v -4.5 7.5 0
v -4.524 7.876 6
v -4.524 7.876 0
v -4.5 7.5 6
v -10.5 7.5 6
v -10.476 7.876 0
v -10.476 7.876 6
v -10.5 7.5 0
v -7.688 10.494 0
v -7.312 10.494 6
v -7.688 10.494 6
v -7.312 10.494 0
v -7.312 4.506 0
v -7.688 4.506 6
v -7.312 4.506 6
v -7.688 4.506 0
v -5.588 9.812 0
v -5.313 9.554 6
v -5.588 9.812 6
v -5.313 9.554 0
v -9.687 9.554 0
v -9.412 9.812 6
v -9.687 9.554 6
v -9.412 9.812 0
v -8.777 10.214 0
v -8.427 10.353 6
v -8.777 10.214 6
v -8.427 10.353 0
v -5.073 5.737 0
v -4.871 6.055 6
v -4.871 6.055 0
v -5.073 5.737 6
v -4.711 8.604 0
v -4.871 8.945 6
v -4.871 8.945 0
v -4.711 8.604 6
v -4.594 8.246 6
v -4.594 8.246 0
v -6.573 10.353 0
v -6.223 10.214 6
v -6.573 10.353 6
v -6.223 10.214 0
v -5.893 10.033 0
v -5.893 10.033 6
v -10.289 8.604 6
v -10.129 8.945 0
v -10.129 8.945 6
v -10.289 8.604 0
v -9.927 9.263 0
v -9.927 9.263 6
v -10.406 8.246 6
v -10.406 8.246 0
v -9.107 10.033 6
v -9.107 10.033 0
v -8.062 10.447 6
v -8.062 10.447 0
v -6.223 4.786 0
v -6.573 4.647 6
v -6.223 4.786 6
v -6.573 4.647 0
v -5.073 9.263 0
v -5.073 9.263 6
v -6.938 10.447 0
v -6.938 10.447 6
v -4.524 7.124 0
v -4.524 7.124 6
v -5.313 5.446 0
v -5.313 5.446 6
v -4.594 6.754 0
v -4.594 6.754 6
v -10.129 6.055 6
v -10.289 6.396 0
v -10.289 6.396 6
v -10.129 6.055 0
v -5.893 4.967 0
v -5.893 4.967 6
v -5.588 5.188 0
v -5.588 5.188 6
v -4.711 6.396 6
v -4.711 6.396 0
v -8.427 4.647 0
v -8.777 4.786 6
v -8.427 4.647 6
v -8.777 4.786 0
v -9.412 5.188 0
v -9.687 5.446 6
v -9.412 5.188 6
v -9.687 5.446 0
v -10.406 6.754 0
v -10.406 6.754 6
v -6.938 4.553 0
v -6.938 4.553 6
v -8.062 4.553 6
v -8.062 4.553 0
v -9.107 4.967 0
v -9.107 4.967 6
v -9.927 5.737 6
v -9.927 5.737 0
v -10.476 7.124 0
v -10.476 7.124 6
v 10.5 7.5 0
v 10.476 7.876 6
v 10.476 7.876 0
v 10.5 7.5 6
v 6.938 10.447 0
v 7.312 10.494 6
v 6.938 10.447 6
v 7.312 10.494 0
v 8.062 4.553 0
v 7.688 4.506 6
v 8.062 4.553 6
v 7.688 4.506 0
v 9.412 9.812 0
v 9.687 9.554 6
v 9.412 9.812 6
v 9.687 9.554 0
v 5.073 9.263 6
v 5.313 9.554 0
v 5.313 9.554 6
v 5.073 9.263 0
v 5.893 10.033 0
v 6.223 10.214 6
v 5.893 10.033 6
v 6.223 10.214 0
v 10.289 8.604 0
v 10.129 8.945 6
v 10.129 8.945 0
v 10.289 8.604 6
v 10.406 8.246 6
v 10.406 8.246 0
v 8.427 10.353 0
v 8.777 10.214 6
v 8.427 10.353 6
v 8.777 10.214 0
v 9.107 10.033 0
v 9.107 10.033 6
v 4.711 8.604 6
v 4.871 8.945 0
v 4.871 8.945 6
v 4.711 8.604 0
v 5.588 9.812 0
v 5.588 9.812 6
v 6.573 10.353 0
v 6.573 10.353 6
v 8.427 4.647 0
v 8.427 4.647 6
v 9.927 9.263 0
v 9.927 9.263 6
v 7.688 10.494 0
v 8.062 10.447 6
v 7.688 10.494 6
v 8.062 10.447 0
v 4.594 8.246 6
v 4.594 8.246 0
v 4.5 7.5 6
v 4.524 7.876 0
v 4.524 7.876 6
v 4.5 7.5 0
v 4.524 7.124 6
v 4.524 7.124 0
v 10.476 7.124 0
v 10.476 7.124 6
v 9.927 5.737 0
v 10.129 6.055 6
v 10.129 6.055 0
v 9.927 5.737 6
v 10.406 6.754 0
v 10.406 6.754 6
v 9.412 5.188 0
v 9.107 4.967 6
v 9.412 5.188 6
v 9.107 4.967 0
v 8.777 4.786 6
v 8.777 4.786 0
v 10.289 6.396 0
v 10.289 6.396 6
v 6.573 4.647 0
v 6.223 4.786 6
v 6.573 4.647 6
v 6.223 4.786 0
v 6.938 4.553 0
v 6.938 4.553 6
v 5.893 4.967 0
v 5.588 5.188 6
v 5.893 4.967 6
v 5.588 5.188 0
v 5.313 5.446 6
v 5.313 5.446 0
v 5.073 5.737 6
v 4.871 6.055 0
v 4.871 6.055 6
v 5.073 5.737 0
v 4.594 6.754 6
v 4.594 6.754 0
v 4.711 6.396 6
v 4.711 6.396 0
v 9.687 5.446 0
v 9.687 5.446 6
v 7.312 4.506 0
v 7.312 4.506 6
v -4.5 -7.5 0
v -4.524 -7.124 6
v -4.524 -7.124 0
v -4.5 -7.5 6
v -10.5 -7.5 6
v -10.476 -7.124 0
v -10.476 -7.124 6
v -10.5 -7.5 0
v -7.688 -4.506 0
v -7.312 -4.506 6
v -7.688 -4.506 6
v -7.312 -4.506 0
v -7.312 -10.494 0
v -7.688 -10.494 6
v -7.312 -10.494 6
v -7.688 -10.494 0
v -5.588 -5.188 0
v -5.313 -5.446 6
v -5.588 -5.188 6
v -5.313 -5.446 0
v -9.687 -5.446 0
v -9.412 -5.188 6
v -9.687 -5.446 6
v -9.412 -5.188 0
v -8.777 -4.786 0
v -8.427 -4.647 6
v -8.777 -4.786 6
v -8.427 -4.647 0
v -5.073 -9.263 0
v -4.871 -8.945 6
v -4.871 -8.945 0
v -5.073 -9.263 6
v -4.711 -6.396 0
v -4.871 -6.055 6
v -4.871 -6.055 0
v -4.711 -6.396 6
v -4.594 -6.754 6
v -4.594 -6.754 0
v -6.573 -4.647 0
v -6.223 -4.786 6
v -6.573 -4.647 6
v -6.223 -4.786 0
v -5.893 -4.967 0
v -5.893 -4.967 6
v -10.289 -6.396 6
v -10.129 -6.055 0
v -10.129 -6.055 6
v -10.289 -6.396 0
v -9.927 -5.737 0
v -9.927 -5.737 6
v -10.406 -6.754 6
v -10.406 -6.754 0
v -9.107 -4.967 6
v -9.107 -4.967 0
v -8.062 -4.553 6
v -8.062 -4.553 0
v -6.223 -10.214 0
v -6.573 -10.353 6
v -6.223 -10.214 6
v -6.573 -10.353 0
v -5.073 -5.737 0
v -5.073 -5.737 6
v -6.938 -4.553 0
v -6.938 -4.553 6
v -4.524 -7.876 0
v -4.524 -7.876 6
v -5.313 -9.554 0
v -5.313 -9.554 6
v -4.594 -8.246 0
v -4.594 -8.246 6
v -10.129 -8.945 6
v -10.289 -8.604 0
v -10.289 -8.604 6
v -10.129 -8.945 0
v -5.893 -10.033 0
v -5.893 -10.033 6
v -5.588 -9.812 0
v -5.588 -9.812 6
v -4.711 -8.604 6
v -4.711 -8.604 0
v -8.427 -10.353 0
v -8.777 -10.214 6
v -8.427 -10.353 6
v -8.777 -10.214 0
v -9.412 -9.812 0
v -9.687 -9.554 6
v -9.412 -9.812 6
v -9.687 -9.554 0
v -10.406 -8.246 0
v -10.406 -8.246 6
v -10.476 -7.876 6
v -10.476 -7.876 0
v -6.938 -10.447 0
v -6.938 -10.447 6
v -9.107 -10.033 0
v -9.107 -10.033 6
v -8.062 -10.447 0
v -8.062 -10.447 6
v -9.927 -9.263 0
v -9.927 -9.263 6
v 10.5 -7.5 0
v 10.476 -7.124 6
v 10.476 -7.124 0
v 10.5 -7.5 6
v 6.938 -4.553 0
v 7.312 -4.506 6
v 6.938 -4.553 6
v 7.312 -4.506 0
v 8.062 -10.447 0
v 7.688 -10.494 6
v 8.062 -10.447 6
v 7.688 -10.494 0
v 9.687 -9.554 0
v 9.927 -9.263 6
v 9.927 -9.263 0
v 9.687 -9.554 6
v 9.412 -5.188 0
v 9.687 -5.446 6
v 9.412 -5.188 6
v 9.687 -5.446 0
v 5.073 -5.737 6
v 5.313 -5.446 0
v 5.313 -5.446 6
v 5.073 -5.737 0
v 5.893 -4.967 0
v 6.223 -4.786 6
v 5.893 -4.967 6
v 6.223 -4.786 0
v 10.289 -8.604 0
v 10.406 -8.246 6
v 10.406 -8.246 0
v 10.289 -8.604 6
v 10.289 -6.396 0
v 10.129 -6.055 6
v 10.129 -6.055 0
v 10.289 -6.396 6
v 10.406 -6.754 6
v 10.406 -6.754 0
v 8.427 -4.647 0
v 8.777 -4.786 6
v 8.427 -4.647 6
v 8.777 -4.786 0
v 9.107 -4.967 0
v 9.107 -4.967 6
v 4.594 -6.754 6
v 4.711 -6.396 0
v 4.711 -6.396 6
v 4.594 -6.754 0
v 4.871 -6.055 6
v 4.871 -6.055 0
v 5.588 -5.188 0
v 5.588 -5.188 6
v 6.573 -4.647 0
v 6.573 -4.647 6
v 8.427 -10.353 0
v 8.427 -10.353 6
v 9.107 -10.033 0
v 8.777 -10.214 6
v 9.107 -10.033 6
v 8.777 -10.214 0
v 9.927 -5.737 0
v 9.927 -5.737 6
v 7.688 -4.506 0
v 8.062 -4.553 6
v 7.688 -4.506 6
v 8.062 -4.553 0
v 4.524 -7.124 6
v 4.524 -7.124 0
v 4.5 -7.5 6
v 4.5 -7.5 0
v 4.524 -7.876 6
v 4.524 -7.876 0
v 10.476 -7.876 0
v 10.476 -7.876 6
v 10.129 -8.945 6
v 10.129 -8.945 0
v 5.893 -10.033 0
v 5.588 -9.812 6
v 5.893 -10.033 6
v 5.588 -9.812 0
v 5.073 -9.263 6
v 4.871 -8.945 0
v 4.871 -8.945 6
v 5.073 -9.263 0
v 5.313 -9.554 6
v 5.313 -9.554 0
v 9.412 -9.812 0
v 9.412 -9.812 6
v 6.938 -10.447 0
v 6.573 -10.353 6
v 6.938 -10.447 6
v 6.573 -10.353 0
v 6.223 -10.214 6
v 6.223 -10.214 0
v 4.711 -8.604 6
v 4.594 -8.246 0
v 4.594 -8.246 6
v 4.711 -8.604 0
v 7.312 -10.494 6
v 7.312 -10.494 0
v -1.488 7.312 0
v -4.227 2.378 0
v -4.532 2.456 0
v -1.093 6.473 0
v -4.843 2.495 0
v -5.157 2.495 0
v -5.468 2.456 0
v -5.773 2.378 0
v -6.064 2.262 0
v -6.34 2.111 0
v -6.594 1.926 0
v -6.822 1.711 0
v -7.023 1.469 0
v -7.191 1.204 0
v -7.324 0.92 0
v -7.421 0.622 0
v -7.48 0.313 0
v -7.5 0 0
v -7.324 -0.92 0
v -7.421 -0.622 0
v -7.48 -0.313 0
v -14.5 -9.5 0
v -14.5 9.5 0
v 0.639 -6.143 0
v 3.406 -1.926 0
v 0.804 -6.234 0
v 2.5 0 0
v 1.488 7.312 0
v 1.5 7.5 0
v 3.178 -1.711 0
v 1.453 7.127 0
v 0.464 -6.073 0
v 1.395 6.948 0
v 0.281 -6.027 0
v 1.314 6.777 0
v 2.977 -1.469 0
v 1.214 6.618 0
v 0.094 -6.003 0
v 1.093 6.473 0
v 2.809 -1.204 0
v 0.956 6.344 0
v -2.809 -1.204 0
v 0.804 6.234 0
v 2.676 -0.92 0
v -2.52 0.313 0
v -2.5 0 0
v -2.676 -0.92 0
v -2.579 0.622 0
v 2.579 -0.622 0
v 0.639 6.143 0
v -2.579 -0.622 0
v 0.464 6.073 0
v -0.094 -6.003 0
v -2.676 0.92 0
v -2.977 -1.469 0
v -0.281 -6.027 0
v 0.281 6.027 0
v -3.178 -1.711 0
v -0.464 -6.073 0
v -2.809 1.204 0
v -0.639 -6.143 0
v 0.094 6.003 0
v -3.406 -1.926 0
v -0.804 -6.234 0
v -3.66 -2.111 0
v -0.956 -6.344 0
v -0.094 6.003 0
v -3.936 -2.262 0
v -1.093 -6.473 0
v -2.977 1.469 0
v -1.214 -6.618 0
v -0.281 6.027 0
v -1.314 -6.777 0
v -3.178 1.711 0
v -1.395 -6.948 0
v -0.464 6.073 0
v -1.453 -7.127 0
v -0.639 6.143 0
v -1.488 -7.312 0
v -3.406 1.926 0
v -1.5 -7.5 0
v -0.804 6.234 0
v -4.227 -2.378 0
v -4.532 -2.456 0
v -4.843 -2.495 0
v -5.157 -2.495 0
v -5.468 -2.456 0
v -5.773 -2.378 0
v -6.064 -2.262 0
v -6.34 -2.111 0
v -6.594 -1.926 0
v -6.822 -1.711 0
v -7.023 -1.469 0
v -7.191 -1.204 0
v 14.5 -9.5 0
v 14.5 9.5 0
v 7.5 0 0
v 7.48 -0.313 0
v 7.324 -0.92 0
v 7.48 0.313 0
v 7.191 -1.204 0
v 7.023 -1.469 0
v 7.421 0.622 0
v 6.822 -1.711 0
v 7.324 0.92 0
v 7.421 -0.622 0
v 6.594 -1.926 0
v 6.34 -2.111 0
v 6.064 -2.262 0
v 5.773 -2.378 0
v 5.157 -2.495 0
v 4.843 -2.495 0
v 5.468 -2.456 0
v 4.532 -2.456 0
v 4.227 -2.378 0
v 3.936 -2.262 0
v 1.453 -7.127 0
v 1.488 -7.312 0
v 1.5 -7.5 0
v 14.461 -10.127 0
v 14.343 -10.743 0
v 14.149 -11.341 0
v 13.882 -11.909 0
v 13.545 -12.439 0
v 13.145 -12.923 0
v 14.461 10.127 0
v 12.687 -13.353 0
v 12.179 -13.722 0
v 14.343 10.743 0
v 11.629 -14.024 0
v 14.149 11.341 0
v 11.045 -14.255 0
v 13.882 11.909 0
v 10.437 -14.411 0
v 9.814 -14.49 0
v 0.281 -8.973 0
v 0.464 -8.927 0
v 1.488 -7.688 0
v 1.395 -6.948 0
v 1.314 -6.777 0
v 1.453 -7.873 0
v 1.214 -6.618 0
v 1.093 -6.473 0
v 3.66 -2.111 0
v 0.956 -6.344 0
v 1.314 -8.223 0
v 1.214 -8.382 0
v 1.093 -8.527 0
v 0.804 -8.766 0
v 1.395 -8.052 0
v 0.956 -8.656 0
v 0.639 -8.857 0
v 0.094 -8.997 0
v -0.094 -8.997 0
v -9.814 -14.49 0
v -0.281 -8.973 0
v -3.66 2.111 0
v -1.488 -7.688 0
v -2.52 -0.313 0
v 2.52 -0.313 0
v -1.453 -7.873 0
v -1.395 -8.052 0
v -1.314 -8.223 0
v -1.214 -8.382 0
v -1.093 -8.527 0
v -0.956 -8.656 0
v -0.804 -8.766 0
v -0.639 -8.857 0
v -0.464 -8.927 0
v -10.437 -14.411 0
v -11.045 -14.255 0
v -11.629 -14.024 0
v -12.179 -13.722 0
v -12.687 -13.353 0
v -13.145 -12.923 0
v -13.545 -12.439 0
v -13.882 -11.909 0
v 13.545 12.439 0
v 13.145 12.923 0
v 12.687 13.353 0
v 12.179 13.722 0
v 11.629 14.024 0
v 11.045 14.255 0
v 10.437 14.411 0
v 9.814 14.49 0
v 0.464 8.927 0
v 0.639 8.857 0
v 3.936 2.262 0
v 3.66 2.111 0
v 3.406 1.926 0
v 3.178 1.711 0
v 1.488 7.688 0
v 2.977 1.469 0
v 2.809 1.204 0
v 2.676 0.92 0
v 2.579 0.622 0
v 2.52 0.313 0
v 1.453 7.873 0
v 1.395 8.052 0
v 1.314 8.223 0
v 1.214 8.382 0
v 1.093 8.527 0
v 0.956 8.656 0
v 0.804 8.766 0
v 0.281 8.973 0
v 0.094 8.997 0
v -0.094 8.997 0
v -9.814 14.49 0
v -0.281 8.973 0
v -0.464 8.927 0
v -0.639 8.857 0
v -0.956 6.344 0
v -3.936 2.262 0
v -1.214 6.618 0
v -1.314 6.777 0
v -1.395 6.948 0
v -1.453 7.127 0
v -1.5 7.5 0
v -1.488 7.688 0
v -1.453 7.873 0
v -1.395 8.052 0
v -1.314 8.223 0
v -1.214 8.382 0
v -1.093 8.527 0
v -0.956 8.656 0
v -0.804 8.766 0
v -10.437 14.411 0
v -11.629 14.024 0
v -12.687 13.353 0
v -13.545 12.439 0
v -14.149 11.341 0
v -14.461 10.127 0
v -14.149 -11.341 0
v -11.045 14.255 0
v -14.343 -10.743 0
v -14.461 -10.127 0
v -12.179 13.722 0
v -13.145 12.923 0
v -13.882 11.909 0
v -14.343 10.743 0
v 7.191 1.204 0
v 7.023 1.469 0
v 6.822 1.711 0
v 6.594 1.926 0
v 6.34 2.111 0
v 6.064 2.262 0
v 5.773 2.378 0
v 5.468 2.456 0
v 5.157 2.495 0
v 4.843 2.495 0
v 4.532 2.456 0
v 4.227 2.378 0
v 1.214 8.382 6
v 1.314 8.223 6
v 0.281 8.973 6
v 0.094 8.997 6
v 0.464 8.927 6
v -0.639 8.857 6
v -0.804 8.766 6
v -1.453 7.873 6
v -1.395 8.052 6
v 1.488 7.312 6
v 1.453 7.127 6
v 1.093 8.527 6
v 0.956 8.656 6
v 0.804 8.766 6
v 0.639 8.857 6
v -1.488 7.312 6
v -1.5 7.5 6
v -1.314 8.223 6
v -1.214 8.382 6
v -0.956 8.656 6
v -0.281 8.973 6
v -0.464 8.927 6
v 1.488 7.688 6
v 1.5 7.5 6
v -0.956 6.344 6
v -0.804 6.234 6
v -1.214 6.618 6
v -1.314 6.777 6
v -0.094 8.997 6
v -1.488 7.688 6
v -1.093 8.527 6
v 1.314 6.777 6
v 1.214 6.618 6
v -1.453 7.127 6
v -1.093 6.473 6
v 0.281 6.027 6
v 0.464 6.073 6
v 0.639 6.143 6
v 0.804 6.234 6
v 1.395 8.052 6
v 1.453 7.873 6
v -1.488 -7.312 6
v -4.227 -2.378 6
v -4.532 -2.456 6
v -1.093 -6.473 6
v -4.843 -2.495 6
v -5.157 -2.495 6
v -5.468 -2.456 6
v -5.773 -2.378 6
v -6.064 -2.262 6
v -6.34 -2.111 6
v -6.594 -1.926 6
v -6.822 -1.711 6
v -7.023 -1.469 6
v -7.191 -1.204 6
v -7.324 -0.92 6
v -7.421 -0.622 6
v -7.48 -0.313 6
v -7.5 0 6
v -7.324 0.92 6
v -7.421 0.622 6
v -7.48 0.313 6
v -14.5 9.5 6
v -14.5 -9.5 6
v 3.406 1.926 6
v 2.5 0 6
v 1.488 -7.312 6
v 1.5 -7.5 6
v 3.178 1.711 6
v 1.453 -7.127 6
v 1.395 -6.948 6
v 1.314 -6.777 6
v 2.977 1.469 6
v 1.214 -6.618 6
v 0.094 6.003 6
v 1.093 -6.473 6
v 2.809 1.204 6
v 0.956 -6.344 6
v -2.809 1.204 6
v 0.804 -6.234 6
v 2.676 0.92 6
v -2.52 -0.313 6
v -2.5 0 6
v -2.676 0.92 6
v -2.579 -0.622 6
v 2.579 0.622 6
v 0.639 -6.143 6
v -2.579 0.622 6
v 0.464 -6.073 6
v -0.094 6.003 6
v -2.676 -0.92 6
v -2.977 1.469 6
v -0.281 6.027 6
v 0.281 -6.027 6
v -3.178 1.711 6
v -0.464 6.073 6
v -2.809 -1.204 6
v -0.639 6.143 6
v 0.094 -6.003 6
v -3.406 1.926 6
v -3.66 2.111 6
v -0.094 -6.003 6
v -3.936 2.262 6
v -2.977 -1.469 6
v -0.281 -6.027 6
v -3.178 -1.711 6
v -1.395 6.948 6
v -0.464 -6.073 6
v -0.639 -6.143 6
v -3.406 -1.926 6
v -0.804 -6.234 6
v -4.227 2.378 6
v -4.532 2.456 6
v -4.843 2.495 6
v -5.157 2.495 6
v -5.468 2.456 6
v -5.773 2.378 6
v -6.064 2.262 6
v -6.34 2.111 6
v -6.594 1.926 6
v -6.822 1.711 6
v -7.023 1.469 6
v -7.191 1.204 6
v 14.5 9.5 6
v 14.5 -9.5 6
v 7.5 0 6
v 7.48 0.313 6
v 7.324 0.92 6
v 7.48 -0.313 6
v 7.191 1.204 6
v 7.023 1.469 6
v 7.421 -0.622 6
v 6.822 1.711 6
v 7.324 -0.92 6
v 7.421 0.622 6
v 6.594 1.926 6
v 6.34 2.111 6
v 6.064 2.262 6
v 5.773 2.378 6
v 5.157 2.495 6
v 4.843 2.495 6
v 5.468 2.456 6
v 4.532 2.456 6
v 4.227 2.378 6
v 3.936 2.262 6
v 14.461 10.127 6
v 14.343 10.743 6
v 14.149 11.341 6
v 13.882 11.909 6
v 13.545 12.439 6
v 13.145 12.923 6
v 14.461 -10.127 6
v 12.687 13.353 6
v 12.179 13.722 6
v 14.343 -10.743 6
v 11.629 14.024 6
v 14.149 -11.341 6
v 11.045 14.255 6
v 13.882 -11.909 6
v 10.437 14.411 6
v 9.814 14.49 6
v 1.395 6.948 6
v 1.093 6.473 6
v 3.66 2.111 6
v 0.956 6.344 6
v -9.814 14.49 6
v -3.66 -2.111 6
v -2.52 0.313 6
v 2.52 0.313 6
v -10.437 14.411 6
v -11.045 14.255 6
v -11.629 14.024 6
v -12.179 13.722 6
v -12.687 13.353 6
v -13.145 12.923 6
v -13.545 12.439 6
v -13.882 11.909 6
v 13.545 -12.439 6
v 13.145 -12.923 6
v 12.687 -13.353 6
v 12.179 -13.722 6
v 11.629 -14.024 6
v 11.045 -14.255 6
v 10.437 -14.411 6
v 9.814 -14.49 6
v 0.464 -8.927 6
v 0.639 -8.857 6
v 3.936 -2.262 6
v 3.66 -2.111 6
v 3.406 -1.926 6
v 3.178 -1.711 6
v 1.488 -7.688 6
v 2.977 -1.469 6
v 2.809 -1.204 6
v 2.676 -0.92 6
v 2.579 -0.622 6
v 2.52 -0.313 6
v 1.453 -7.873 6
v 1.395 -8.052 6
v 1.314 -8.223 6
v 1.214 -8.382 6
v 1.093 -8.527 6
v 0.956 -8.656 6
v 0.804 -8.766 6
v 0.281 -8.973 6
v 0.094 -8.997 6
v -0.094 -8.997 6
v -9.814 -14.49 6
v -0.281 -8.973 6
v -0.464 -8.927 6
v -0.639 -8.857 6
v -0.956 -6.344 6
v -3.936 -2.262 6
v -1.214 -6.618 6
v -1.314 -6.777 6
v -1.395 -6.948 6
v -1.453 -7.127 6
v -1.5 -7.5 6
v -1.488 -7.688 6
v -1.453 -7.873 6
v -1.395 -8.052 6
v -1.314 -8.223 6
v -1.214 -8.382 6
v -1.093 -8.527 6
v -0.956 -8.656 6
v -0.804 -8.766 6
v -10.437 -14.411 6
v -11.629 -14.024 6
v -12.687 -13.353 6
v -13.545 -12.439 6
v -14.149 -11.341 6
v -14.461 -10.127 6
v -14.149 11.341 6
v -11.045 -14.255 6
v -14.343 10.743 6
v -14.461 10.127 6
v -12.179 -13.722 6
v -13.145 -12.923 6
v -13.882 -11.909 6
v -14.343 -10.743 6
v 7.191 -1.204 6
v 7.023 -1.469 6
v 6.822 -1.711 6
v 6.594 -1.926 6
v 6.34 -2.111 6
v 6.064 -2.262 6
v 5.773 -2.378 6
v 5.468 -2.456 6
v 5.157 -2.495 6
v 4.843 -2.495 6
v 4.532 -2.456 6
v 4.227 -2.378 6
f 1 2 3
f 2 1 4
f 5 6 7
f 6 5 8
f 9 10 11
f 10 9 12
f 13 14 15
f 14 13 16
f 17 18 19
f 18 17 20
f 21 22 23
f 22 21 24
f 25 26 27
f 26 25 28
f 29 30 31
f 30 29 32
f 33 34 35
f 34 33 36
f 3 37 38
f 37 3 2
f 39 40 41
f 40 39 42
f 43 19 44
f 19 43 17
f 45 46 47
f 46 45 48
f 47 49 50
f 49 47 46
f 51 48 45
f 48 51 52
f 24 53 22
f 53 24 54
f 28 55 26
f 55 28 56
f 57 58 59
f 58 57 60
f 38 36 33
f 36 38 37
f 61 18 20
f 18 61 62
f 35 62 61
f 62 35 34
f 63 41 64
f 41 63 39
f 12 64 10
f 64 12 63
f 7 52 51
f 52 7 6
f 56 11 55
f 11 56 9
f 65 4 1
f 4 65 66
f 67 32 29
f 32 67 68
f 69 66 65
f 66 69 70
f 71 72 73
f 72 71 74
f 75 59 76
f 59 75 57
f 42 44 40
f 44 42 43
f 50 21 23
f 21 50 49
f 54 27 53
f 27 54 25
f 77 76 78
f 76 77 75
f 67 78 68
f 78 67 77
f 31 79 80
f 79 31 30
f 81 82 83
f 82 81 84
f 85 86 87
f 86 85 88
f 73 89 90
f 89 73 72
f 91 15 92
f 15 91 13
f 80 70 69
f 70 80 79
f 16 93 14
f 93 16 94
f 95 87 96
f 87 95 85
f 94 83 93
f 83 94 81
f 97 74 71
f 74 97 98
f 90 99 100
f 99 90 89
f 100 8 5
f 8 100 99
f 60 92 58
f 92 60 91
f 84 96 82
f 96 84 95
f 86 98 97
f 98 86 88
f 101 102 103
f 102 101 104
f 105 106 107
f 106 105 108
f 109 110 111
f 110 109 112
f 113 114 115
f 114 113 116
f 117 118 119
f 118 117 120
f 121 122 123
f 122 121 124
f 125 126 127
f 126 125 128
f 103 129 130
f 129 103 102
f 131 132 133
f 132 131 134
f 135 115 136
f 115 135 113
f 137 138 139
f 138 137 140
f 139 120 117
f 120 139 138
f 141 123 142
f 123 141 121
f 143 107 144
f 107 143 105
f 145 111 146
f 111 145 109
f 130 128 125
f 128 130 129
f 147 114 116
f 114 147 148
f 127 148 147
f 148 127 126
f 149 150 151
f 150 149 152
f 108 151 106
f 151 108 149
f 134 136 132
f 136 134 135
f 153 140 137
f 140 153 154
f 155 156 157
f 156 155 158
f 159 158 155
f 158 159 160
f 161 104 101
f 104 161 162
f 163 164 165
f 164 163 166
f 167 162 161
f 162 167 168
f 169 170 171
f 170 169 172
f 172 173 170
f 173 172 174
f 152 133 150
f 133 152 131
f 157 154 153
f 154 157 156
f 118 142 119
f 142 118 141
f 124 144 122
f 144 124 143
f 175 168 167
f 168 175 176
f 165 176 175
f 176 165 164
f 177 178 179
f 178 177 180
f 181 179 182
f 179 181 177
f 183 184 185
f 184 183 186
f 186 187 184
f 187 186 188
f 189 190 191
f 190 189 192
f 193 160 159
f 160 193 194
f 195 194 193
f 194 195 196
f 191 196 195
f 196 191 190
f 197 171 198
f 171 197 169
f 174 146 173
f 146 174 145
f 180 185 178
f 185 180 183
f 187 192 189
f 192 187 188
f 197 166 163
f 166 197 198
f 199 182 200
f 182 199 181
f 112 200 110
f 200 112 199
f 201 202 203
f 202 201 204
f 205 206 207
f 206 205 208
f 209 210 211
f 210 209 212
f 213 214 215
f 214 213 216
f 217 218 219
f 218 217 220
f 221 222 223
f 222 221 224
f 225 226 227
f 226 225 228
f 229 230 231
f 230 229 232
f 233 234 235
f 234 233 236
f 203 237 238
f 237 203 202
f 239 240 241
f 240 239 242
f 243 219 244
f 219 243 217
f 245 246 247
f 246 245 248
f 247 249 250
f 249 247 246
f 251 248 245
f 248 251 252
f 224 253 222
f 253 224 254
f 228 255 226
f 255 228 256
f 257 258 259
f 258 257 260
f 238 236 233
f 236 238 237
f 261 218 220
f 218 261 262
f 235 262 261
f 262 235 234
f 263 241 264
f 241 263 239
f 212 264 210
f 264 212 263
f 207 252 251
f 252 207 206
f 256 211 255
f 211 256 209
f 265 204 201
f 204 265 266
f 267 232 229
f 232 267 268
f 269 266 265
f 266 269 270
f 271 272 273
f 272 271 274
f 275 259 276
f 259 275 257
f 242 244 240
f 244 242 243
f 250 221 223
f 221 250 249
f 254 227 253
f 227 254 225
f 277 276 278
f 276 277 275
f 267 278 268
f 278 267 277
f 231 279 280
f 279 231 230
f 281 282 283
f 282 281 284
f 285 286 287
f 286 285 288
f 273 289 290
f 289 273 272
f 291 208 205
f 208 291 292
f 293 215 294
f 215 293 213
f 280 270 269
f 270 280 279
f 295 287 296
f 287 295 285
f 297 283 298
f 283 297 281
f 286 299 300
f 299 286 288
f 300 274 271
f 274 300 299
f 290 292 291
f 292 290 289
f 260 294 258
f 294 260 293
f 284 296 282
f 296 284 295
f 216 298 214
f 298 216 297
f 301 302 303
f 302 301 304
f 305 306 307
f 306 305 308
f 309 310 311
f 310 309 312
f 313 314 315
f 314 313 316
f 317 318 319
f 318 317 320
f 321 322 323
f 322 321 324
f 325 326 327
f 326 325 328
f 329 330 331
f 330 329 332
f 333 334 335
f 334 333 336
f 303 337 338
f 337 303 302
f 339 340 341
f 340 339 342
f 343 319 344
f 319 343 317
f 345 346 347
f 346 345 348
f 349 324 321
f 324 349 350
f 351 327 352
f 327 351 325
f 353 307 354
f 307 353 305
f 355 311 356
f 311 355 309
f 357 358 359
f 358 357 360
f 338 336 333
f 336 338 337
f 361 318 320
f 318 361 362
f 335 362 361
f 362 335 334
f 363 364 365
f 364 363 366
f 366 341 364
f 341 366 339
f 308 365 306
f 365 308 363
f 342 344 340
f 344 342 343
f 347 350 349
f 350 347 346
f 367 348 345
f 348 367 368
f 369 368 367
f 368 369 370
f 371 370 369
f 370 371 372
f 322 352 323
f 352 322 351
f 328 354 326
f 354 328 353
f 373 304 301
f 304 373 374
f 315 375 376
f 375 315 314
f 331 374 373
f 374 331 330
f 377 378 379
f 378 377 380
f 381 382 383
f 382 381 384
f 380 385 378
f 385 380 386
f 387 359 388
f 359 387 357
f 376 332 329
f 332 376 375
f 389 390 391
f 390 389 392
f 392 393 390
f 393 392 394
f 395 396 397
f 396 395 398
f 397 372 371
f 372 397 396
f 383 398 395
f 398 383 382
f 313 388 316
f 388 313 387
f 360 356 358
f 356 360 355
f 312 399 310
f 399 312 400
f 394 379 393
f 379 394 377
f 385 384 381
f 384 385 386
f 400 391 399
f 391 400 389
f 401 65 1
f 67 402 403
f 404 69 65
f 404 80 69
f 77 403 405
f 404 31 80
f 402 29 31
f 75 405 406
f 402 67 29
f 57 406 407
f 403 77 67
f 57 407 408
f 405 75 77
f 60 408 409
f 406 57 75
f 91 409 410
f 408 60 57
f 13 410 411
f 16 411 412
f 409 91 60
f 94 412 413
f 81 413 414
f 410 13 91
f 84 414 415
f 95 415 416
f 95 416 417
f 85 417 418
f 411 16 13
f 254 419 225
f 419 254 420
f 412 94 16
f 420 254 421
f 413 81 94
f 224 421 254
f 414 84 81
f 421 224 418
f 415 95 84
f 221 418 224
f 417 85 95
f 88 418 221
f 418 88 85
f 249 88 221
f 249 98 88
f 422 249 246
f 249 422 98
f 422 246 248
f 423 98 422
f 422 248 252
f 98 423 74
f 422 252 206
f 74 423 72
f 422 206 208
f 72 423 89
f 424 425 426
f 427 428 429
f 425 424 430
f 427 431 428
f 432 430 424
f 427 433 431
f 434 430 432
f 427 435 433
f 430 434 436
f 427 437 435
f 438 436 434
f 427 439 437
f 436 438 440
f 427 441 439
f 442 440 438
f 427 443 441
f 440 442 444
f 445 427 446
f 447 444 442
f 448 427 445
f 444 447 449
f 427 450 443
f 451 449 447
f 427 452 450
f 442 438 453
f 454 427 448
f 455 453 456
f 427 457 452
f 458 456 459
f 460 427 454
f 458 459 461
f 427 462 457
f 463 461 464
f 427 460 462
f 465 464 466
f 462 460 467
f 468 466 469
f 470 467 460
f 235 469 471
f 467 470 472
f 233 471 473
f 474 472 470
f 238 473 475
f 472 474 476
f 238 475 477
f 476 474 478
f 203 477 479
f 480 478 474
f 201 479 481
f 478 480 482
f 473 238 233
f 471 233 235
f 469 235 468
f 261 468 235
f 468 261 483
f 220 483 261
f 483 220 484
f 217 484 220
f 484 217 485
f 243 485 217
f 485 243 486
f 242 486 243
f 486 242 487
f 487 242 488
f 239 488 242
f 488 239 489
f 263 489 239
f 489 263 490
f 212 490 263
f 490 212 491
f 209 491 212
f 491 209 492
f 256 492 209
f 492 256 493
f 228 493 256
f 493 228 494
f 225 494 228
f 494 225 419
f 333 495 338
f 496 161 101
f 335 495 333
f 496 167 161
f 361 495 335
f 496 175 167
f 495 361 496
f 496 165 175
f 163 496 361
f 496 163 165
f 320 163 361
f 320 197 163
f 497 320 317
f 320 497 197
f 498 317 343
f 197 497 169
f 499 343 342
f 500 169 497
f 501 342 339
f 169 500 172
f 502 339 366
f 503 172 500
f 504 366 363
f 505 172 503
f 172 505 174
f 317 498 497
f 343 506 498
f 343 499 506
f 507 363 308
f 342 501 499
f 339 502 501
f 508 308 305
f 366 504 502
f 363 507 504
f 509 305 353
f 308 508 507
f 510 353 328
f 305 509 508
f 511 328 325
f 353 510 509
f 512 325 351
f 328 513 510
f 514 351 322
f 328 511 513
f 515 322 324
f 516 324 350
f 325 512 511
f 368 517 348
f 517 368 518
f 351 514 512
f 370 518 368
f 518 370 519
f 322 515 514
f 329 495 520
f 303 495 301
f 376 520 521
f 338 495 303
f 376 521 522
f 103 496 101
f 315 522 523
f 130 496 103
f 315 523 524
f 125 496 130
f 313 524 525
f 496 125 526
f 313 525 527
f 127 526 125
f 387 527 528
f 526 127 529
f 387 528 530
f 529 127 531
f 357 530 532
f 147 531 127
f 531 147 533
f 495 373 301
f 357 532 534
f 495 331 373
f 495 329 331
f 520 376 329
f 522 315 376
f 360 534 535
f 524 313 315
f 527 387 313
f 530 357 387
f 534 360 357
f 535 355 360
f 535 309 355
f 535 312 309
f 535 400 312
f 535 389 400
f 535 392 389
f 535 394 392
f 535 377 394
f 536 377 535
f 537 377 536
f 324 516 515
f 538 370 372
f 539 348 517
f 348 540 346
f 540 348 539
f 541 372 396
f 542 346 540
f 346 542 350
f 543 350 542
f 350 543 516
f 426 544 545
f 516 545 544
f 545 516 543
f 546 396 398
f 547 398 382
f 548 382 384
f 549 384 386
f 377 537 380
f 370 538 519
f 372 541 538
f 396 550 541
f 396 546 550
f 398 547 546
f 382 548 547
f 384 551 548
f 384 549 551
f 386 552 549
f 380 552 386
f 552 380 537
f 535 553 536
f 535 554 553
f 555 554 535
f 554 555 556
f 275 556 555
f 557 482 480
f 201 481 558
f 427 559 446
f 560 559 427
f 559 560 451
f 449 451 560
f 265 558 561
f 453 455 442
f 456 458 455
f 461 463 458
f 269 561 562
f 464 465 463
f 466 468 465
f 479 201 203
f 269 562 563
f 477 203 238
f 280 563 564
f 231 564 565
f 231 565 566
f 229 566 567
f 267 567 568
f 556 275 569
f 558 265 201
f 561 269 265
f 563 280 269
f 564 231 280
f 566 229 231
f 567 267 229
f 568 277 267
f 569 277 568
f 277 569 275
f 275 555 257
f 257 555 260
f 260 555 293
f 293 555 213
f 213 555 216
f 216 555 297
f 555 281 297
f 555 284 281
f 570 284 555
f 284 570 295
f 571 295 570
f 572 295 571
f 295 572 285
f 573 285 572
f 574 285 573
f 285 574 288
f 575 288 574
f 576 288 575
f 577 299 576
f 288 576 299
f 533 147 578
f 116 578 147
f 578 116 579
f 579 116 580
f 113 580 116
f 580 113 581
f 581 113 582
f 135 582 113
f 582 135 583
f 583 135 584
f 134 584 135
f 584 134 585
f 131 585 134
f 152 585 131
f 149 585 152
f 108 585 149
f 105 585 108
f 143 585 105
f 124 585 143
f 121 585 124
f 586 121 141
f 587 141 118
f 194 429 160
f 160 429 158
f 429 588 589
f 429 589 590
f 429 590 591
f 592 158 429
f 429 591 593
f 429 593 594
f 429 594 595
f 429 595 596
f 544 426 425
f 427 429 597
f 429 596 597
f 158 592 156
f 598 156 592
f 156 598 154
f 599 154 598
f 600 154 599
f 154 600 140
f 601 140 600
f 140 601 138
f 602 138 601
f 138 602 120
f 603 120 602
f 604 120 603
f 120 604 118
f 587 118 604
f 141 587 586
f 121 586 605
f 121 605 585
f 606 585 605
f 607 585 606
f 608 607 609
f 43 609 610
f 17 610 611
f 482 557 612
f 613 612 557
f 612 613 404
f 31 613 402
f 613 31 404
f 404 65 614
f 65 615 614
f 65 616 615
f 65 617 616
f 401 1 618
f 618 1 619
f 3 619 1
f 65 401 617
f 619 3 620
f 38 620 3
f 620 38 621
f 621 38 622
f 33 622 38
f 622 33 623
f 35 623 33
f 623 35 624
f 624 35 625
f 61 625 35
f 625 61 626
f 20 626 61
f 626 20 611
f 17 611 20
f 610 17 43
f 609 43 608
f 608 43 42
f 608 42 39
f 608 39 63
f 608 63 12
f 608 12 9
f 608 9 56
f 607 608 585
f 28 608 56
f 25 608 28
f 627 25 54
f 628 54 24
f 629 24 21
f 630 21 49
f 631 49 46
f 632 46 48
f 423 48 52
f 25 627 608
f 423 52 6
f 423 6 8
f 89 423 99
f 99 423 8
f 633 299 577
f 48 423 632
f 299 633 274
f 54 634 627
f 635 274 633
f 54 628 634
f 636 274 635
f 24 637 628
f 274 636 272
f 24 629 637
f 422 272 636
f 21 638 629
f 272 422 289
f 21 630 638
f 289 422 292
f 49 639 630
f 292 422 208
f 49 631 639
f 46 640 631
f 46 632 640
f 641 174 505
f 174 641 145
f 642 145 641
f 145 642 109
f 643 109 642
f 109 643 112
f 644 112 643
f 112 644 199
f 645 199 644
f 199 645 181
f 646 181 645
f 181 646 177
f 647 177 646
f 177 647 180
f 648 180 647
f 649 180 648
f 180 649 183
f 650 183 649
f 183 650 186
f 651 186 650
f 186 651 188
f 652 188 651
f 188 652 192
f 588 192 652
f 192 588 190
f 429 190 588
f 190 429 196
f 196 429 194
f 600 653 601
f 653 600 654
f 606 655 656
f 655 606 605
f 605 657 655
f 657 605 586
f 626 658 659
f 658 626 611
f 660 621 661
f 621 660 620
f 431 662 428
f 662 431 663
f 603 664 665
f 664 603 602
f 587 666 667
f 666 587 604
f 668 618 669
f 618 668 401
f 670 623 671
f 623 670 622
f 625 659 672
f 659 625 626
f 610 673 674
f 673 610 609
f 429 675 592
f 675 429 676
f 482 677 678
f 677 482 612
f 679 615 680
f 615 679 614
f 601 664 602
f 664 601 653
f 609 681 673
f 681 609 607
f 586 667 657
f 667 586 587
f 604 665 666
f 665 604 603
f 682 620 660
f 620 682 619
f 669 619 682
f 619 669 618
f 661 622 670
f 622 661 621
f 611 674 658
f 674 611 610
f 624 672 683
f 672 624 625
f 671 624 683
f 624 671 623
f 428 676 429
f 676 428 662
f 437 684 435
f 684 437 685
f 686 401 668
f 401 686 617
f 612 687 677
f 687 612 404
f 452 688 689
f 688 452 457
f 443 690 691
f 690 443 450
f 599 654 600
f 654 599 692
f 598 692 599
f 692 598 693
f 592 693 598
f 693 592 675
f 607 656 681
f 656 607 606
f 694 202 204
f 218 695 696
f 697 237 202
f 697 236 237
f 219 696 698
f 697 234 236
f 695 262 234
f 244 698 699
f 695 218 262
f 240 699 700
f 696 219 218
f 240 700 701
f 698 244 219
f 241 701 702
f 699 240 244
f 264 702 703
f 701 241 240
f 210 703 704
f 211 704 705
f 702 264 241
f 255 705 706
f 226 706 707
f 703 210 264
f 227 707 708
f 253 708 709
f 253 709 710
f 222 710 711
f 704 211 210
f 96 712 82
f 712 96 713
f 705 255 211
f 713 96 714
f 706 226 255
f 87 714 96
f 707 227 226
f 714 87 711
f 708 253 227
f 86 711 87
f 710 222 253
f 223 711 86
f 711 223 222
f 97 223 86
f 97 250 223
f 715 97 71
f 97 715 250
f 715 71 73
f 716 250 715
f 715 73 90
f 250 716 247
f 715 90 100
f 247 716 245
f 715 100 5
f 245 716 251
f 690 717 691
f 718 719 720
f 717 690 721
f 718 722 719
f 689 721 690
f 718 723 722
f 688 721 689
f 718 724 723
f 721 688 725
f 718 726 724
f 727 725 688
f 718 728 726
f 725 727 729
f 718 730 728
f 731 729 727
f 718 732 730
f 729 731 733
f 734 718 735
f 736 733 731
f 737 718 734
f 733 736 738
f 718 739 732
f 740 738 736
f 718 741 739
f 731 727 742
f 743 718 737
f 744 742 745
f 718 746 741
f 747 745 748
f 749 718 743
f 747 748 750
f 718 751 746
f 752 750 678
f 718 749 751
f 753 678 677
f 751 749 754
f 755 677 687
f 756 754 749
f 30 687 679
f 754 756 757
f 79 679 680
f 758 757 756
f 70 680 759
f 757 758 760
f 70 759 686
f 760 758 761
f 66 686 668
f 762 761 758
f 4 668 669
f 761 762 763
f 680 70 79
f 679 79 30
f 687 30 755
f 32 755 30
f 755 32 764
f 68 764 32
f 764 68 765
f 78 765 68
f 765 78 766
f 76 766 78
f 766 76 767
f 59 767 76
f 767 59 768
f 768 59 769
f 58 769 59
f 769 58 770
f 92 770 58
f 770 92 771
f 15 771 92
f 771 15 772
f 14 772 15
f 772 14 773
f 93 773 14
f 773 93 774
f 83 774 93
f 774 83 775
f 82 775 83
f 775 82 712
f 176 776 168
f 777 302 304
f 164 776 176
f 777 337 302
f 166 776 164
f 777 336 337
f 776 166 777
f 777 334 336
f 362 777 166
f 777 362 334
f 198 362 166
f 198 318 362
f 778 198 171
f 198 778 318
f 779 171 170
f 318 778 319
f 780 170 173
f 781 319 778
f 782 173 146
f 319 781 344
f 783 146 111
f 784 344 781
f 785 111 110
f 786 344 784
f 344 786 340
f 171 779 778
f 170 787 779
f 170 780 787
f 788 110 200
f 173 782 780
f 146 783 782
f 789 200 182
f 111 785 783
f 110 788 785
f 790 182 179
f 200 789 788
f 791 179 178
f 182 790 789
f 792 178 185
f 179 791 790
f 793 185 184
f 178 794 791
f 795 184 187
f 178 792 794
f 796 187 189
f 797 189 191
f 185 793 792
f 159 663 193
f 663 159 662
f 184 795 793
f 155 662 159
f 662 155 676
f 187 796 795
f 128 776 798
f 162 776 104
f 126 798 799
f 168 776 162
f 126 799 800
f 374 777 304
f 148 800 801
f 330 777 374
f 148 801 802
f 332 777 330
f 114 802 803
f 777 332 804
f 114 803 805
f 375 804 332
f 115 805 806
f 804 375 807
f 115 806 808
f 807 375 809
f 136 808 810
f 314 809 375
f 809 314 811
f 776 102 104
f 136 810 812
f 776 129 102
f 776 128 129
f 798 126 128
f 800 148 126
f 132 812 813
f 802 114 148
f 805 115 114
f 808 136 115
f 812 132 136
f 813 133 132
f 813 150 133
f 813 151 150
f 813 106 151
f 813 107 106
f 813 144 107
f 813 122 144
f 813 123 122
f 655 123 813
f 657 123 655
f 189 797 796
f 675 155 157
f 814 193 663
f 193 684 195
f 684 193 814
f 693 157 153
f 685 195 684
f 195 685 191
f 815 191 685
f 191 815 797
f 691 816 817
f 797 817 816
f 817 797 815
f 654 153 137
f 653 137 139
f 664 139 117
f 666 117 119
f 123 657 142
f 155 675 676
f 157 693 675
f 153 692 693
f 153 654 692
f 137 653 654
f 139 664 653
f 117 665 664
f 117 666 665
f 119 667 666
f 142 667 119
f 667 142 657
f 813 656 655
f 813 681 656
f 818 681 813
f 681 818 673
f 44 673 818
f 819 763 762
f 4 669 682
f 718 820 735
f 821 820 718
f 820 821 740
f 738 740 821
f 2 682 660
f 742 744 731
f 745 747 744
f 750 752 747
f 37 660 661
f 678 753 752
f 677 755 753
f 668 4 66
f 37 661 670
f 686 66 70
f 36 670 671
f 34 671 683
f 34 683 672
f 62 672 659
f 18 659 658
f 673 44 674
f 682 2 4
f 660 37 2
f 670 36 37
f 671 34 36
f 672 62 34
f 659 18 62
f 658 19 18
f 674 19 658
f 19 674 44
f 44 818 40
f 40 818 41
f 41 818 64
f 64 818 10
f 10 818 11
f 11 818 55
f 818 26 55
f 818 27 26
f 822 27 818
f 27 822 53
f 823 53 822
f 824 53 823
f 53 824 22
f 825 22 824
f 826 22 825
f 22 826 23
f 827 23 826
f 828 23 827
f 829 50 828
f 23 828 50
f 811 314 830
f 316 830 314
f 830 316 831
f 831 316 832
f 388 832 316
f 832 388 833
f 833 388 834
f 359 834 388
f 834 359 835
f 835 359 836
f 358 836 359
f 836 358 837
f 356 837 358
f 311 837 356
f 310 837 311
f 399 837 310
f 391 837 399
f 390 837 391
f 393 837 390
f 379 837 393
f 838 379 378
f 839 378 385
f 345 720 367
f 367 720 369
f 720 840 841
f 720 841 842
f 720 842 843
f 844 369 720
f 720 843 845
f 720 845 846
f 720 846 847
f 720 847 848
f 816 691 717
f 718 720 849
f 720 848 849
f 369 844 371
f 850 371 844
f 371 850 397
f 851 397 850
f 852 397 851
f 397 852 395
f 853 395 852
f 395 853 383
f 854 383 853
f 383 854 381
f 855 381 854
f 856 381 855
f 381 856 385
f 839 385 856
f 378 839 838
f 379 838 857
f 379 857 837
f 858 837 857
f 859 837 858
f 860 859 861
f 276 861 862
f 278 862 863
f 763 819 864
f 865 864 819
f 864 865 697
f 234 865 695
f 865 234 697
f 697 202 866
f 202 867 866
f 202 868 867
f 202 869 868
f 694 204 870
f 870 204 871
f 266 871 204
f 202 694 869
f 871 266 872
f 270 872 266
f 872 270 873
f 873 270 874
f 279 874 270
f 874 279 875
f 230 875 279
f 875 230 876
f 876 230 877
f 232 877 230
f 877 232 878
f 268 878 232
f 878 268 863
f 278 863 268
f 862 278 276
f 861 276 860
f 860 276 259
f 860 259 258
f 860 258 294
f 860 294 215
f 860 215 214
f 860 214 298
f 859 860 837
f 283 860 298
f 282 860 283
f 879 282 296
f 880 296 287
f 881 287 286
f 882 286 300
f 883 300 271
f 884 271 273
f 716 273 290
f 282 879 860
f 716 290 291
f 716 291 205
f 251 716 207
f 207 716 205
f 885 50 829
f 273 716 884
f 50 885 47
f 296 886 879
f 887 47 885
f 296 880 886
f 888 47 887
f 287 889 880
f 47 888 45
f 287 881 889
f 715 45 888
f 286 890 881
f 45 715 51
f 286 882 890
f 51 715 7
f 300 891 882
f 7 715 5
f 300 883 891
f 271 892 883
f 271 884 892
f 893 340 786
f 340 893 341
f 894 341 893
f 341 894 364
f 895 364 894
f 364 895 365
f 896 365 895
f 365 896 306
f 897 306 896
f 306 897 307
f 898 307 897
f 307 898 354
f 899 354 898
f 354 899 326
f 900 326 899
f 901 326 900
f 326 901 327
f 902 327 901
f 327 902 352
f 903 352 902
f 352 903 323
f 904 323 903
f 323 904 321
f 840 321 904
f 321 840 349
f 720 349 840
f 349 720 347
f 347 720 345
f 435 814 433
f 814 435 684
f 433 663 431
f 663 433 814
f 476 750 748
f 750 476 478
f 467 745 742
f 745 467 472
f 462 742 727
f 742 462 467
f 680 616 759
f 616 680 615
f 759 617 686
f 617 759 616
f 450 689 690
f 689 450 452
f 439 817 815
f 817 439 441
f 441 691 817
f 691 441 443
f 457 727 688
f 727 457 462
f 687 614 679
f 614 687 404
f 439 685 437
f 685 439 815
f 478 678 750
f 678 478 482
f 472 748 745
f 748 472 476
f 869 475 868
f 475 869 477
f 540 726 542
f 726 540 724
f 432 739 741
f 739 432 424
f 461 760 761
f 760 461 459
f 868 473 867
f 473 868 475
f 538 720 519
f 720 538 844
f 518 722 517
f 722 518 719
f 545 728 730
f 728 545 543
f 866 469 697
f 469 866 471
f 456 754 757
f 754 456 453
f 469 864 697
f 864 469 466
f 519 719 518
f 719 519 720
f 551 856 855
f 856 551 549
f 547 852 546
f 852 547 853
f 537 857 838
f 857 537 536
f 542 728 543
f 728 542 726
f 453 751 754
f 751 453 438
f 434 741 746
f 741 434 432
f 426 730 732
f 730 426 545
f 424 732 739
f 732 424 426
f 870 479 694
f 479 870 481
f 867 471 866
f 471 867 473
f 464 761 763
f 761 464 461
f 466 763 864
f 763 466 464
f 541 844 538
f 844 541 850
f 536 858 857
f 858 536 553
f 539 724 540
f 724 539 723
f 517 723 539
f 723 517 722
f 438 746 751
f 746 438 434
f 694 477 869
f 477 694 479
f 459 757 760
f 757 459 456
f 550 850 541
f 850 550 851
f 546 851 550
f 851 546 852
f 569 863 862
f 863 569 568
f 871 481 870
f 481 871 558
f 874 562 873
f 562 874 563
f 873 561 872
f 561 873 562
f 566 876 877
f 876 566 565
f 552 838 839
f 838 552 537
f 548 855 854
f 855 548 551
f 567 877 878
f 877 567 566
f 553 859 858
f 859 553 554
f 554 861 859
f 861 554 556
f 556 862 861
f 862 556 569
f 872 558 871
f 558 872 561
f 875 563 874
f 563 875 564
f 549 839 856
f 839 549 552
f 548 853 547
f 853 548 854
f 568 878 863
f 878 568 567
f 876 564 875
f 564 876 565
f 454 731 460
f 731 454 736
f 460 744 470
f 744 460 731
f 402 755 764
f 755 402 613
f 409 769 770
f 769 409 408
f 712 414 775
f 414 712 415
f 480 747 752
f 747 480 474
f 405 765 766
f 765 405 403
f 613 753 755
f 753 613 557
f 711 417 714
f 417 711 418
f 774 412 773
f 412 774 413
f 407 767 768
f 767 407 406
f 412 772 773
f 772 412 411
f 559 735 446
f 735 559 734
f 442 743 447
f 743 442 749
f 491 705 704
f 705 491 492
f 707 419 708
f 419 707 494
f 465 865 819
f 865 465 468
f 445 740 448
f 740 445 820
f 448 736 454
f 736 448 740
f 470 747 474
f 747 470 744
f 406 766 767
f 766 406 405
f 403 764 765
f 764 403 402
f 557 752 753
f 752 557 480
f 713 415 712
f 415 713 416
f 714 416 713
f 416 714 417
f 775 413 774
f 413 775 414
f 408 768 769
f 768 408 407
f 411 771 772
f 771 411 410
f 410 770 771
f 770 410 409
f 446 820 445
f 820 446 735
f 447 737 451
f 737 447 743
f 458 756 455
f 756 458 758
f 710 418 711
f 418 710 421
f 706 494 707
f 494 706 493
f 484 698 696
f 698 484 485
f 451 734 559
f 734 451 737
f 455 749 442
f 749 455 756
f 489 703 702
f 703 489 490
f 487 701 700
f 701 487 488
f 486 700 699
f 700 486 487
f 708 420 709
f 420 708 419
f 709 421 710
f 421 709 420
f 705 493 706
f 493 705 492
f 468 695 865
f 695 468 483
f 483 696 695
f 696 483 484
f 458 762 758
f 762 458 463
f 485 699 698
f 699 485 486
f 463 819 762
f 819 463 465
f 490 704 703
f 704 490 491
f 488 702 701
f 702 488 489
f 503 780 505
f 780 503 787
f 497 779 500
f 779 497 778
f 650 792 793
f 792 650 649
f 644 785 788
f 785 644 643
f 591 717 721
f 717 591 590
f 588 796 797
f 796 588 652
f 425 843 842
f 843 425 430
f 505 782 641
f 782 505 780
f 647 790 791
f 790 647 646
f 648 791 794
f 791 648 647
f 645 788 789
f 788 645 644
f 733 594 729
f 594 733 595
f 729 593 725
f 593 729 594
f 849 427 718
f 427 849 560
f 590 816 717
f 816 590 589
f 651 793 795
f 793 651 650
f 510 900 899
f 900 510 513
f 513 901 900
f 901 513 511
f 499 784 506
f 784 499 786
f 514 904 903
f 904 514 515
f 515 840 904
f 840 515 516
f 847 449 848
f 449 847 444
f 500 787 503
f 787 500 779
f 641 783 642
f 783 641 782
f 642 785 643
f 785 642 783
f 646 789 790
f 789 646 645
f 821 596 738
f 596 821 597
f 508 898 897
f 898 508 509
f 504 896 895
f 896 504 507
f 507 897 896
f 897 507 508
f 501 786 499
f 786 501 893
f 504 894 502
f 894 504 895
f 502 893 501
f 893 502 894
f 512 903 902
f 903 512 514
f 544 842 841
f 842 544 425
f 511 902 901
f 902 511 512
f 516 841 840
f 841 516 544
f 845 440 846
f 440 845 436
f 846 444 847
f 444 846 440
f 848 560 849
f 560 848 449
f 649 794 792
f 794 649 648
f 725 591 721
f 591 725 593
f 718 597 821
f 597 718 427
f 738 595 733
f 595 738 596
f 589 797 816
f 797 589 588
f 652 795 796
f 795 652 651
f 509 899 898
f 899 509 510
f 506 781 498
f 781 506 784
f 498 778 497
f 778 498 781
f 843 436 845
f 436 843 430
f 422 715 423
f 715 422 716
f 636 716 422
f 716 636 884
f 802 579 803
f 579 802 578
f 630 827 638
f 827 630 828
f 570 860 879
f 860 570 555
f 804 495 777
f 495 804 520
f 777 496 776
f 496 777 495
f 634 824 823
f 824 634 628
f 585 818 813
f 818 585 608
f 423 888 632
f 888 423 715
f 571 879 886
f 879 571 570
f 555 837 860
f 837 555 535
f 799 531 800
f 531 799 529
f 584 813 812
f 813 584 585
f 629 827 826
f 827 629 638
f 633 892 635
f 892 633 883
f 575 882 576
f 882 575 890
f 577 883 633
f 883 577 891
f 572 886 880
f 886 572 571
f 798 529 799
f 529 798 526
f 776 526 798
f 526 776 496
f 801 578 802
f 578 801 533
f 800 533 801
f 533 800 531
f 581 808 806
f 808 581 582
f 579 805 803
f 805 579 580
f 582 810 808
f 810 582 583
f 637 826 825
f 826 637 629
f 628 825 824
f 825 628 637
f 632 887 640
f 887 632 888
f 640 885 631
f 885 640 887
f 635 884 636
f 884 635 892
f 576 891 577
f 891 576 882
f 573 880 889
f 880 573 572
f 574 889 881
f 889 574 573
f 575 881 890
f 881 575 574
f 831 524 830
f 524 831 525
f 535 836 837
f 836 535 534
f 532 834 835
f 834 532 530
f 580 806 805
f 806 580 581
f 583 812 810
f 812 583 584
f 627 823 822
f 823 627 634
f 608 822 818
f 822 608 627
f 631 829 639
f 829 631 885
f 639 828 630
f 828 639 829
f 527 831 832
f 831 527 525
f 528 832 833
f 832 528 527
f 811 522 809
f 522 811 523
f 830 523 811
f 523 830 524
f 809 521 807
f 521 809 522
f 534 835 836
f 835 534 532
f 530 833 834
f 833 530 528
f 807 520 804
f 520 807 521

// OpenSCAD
$fn = 50;


difference() {
	union() {
		hull() {
			translate(v = [-9.5000000000, 9.5000000000, 0]) {
				cylinder(h = 6, r = 5);
			}
			translate(v = [9.5000000000, 9.5000000000, 0]) {
				cylinder(h = 6, r = 5);
			}
			translate(v = [-9.5000000000, -9.5000000000, 0]) {
				cylinder(h = 6, r = 5);
			}
			translate(v = [9.5000000000, -9.5000000000, 0]) {
				cylinder(h = 6, r = 5);
			}
		}
	}
	union() {
		#translate(v = [-7.5000000000, 7.5000000000, 0]) {
			cylinder(h = 6, r = 3.0000000000);
		}
		#translate(v = [7.5000000000, 7.5000000000, 0]) {
			cylinder(h = 6, r = 3.0000000000);
		}
		#translate(v = [-7.5000000000, -7.5000000000, 0]) {
			cylinder(h = 6, r = 3.0000000000);
		}
		#translate(v = [7.5000000000, -7.5000000000, 0]) {
			cylinder(h = 6, r = 3.0000000000);
		}
		#translate(v = [-7.5000000000, -7.5000000000, -100.0000000000]) {
			cylinder(h = 200, r = 3.0000000000);
		}
		#translate(v = [-7.5000000000, 7.5000000000, -100.0000000000]) {
			cylinder(h = 200, r = 3.0000000000);
		}
		#translate(v = [7.5000000000, -7.5000000000, -100.0000000000]) {
			cylinder(h = 200, r = 3.0000000000);
		}
		#translate(v = [7.5000000000, 7.5000000000, -100.0000000000]) {
			cylinder(h = 200, r = 3.0000000000);
		}
		#translate(v = [-7.5000000000, 7.5000000000, 0]) {
			cylinder(h = 6, r = 1.5000000000);
		}
		#translate(v = [0.0000000000, 7.5000000000, 0]) {
			cylinder(h = 6, r = 1.5000000000);
		}
		#translate(v = [7.5000000000, 7.5000000000, 0]) {
			cylinder(h = 6, r = 1.5000000000);
		}
		#translate(v = [-7.5000000000, -7.5000000000, 0]) {
			cylinder(h = 6, r = 1.5000000000);
		}
		#translate(v = [0.0000000000, -7.5000000000, 0]) {
			cylinder(h = 6, r = 1.5000000000);
		}
		#translate(v = [7.5000000000, -7.5000000000, 0]) {
			cylinder(h = 6, r = 1.5000000000);
		}
		#translate(v = [-7.5000000000, 7.5000000000, 0]) {
			cylinder(h = 6, r = 1.5000000000);
		}
		#translate(v = [0.0000000000, 7.5000000000, 0]) {
			cylinder(h = 6, r = 1.5000000000);
		}
		#translate(v = [7.5000000000, 7.5000000000, 0]) {
			cylinder(h = 6, r = 1.5000000000);
		}
		#translate(v = [-7.5000000000, -7.5000000000, 0]) {
			cylinder(h = 6, r = 1.5000000000);
		}
		#translate(v = [0.0000000000, -7.5000000000, 0]) {
			cylinder(h = 6, r = 1.5000000000);
		}
		#translate(v = [7.5000000000, -7.5000000000, 0]) {
			cylinder(h = 6, r = 1.5000000000);
		}
		#translate(v = [-7.5000000000, 7.5000000000, 0]) {
			cylinder(h = 6, r = 1.5000000000);
		}
		#translate(v = [0.0000000000, 7.5000000000, 0]) {
			cylinder(h = 6, r = 1.5000000000);
		}
		#translate(v = [7.5000000000, 7.5000000000, 0]) {
			cylinder(h = 6, r = 1.5000000000);
		}
		#translate(v = [-7.5000000000, -7.5000000000, 0]) {
			cylinder(h = 6, r = 1.5000000000);
		}
		#translate(v = [0.0000000000, -7.5000000000, 0]) {
			cylinder(h = 6, r = 1.5000000000);
		}
		#translate(v = [7.5000000000, -7.5000000000, 0]) {
			cylinder(h = 6, r = 1.5000000000);
		}
		#translate(v = [-5.0000000000, 0, 0]) {
			cylinder(h = 6, r = 2.5000000000);
		}
		#translate(v = [5.0000000000, 0, 0]) {
			cylinder(h = 6, r = 2.5000000000);
		}
	}
}
